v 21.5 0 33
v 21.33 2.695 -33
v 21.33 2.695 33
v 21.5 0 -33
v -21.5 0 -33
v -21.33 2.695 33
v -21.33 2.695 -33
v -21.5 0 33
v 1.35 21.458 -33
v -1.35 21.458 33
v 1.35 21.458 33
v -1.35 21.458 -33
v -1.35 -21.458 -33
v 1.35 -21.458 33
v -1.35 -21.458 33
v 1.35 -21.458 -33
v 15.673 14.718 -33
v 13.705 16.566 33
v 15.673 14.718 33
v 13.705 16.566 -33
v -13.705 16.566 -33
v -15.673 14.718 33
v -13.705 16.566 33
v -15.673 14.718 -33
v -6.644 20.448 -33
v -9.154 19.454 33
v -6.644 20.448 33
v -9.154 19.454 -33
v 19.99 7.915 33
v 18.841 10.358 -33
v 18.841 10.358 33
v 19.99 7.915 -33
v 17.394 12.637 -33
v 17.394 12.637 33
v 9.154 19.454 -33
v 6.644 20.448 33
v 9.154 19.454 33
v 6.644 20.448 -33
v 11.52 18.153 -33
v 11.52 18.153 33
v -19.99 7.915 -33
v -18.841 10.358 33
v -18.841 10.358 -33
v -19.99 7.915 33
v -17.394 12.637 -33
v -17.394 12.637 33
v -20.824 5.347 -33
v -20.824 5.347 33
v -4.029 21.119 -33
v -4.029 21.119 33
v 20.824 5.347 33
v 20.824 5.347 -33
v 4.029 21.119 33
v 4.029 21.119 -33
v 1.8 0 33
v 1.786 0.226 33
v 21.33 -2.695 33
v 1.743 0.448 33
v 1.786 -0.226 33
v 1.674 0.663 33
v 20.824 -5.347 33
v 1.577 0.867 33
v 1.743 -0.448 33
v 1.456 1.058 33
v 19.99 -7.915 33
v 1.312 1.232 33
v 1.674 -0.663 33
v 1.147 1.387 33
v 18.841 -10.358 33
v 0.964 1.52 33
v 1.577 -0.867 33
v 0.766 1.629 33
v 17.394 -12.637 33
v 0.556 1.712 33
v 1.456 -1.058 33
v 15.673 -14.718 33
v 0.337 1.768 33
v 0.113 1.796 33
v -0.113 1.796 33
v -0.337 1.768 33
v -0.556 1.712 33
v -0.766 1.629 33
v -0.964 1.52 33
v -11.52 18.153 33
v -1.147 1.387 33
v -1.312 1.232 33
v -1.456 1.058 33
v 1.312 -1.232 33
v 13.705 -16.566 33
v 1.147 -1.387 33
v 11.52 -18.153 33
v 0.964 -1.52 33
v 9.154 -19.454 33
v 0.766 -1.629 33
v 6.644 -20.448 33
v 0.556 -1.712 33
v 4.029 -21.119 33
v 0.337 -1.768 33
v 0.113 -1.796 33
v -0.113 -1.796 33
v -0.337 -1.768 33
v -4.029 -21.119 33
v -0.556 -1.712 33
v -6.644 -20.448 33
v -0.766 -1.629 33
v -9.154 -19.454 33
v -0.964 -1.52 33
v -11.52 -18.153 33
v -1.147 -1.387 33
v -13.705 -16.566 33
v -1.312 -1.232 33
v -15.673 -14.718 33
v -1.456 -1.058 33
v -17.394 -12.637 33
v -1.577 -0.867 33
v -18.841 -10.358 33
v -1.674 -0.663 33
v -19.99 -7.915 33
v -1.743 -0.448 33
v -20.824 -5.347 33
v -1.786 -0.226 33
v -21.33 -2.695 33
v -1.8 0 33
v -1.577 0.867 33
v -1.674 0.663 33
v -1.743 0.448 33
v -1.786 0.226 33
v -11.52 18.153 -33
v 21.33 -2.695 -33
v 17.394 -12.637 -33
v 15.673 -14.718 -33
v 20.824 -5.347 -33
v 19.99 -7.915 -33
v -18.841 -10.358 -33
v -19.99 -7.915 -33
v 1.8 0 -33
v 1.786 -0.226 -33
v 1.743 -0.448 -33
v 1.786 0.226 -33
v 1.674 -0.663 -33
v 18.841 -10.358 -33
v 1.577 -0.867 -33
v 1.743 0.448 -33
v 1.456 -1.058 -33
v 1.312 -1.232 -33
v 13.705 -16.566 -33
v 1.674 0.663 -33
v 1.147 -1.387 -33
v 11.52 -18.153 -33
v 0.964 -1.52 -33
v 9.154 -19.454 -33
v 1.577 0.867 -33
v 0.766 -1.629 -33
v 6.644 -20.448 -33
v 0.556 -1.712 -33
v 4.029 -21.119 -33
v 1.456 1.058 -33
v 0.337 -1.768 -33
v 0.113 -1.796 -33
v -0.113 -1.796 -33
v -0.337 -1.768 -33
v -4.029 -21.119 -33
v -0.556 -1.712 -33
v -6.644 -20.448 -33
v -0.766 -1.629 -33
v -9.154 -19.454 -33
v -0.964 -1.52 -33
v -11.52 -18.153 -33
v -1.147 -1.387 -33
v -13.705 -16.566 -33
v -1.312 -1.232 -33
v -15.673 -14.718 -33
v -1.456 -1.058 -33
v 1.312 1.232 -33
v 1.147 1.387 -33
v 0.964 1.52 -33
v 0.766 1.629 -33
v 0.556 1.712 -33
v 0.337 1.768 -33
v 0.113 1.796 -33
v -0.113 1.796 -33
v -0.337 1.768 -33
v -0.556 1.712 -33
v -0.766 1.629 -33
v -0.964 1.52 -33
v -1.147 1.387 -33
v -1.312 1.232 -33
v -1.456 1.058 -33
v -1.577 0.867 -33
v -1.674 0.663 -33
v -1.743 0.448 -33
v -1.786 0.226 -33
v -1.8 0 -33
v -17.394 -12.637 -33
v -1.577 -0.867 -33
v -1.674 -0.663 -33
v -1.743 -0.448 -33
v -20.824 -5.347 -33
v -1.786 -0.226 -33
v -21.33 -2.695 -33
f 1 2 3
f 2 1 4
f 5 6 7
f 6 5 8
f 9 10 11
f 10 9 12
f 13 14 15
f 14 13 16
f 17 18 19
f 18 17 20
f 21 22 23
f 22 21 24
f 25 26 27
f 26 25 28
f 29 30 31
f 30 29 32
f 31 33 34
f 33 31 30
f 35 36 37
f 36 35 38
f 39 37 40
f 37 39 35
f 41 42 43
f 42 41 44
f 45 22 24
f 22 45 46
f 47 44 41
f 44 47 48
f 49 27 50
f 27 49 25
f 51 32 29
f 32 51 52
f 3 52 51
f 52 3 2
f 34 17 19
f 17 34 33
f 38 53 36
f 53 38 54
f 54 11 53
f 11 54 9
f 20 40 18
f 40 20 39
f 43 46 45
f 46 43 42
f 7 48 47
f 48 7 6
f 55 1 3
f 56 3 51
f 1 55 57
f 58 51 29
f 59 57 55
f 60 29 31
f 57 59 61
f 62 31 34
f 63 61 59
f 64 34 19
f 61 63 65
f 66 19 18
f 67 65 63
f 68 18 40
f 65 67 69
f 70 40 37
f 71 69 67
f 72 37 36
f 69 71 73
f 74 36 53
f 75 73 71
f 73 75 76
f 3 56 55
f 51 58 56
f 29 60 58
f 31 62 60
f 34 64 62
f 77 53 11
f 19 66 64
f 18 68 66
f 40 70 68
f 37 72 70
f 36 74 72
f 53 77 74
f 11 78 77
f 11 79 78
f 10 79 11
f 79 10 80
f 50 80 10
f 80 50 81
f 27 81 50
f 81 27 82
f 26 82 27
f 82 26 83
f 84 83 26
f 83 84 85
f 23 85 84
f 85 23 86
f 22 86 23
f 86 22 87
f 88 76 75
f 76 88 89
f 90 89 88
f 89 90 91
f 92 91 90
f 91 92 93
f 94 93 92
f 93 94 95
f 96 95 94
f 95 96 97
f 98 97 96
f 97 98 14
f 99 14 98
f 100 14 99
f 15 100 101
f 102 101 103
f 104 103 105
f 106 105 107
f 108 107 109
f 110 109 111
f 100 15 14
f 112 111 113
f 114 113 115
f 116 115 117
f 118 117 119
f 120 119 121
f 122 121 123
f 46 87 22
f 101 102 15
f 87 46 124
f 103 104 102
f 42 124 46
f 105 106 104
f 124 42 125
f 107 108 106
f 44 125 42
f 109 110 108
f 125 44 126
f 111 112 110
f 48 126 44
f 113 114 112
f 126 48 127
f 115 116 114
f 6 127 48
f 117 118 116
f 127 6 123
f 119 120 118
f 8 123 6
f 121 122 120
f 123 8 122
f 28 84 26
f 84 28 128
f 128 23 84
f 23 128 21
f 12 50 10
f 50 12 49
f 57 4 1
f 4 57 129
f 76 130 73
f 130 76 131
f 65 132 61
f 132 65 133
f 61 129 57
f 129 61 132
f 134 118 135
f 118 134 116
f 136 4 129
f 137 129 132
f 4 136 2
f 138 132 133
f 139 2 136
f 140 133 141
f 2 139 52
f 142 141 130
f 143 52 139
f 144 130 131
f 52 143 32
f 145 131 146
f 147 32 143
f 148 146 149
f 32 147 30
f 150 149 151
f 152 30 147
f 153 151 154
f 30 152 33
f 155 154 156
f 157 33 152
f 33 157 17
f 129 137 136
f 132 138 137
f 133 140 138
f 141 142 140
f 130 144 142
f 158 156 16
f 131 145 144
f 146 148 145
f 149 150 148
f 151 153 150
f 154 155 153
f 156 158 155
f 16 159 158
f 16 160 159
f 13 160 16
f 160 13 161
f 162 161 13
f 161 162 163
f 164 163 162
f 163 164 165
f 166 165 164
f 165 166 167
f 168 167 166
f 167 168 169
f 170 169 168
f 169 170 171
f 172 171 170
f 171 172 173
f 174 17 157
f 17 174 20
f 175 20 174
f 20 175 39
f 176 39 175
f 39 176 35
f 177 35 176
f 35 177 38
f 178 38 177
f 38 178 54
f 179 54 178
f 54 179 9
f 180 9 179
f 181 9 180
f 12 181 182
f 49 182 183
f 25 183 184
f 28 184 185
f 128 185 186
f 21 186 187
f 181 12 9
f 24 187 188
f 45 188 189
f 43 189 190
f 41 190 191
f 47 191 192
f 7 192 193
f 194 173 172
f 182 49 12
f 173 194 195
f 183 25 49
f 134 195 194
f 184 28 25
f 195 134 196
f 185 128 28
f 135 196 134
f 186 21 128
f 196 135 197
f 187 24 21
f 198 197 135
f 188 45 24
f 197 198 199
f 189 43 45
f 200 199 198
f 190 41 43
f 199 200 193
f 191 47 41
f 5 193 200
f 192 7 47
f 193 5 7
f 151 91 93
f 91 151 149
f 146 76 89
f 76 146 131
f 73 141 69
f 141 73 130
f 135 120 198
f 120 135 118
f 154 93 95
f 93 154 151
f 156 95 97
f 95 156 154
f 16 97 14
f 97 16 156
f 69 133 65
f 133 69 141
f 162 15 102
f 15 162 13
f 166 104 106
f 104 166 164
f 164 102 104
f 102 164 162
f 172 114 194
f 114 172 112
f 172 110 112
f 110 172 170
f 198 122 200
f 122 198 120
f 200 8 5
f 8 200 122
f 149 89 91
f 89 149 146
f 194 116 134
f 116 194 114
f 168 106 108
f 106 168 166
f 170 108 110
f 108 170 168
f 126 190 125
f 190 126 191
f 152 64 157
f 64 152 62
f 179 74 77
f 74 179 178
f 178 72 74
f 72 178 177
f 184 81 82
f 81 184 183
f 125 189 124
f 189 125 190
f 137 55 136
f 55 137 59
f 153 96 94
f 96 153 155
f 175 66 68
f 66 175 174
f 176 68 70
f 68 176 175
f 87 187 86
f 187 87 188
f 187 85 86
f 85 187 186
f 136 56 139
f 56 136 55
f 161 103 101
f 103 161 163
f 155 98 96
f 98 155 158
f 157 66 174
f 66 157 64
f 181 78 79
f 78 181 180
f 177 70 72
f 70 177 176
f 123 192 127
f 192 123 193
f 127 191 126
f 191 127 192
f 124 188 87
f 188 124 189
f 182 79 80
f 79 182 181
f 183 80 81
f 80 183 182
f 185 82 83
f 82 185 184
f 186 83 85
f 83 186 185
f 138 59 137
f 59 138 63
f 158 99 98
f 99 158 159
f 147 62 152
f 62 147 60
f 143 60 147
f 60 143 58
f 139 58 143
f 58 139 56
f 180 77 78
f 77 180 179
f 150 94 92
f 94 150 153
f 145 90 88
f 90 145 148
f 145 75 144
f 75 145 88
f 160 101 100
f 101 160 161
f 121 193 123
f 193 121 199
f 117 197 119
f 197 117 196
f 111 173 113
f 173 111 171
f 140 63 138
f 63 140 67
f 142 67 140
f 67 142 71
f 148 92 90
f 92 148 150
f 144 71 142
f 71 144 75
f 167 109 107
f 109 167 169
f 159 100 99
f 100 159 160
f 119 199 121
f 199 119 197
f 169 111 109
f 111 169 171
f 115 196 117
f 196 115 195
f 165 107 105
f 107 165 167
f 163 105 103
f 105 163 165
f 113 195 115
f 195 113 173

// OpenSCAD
$fn = 50;


difference() {
	union() {
		translate(v = [0, 0, -33.0000000000]) {
			cylinder(h = 66, r = 21.5000000000);
		}
	}
	union() {
		translate(v = [0, 0, -100.0000000000]) {
			cylinder(h = 200, r = 1.8000000000);
		}
	}
}
